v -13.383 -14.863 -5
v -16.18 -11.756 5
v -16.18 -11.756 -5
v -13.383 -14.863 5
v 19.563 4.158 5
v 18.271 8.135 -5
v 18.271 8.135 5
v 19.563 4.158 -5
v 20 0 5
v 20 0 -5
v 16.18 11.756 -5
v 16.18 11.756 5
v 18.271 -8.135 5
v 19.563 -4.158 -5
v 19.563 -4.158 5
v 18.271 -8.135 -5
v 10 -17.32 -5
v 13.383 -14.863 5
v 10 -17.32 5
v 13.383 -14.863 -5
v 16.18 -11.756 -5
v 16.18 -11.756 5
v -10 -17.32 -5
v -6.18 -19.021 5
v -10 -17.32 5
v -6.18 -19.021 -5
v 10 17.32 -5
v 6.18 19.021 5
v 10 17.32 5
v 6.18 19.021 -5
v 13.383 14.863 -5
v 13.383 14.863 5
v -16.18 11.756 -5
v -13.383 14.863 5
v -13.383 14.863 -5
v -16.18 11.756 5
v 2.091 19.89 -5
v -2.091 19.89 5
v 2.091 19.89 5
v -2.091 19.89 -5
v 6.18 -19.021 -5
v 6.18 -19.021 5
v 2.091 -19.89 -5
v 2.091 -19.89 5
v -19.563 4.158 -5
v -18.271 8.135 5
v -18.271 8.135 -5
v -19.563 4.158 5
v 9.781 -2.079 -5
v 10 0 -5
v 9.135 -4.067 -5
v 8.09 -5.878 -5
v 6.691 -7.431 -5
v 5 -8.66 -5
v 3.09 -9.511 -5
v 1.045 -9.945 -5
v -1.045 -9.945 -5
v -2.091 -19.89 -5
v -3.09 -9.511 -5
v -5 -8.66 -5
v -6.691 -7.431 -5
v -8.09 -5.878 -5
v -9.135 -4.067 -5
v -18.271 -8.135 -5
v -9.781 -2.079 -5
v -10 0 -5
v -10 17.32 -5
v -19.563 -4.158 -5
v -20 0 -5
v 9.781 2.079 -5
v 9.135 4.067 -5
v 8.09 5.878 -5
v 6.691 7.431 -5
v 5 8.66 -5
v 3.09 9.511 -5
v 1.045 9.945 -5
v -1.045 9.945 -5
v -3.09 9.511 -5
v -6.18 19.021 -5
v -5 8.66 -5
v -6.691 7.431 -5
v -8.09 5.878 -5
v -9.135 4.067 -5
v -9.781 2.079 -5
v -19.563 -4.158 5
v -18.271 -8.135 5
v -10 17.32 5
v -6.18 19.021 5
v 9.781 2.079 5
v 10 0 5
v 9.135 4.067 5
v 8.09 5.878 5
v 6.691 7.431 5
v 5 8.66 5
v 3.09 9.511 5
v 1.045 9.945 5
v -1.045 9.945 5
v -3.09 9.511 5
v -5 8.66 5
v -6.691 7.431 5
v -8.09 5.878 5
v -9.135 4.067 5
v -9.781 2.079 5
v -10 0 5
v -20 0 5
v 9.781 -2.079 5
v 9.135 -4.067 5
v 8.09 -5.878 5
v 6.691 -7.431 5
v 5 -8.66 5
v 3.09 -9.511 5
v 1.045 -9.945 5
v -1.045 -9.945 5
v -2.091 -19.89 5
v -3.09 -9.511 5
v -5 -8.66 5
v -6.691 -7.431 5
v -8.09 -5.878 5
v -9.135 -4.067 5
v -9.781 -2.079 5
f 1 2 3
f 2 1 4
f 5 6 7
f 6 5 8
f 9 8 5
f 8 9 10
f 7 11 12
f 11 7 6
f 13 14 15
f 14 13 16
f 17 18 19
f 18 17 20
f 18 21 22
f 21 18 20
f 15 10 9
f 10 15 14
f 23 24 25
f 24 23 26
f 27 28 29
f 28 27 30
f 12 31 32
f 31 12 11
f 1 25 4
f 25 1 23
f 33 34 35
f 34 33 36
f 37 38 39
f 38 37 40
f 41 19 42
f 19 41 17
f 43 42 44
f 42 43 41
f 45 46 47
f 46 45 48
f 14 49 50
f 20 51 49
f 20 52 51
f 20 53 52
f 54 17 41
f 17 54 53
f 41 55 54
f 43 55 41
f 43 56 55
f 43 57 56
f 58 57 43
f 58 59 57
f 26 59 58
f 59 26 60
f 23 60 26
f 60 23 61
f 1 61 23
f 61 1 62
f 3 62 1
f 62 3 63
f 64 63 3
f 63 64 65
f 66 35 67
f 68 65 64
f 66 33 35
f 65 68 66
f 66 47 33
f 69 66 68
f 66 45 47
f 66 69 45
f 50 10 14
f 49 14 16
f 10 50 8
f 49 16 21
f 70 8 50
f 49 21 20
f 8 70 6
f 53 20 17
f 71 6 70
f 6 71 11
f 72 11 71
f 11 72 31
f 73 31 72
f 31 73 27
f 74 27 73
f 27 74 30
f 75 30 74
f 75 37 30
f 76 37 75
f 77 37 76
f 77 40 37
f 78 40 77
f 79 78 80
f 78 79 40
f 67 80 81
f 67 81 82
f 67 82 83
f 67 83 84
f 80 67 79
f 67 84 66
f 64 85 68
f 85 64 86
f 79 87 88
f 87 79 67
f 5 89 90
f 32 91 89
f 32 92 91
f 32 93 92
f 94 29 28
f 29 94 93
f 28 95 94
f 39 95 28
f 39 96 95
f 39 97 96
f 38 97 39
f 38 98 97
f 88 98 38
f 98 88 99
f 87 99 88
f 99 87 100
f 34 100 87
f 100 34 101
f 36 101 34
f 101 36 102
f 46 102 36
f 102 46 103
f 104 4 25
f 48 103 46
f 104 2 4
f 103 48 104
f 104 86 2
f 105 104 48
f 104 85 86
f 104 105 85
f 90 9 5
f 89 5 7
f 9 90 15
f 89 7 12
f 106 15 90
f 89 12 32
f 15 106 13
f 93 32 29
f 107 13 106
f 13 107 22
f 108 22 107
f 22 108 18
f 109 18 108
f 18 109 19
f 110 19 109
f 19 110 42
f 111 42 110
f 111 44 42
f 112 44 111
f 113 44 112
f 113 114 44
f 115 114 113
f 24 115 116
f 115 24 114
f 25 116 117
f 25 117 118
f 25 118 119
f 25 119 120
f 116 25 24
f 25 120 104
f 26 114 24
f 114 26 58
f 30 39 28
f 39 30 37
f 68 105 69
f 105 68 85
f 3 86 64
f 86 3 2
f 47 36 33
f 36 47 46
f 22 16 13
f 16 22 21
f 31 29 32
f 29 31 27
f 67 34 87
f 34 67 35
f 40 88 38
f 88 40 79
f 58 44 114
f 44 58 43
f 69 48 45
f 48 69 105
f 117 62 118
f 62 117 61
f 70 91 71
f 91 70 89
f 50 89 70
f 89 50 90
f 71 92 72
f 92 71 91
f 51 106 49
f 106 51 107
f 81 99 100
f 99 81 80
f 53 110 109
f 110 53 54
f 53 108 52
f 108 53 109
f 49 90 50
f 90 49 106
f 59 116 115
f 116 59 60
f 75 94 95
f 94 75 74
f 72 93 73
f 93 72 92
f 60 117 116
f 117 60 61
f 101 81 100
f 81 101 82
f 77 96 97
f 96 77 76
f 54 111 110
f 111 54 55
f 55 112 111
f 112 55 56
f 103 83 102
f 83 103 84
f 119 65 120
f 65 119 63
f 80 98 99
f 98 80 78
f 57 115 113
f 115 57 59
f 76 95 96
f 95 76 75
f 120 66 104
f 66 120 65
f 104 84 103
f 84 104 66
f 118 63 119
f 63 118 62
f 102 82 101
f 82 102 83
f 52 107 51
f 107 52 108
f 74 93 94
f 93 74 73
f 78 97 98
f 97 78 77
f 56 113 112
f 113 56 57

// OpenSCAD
// Parameters for the spacer ring
ring_outer_diameter = 40; // Outer diameter of the ring
ring_inner_diameter = 20; // Inner diameter (hollow center)
ring_thickness = 10;      // Thickness of the ring

// Spacer ring generation
difference() {
    // Outer cylinder (main body of the ring)
    cylinder(h = ring_thickness, d = ring_outer_diameter, center = true);
    
    // Inner cylinder (hollow center)
    cylinder(h = ring_thickness + 1, d = ring_inner_diameter, center = true);
}
